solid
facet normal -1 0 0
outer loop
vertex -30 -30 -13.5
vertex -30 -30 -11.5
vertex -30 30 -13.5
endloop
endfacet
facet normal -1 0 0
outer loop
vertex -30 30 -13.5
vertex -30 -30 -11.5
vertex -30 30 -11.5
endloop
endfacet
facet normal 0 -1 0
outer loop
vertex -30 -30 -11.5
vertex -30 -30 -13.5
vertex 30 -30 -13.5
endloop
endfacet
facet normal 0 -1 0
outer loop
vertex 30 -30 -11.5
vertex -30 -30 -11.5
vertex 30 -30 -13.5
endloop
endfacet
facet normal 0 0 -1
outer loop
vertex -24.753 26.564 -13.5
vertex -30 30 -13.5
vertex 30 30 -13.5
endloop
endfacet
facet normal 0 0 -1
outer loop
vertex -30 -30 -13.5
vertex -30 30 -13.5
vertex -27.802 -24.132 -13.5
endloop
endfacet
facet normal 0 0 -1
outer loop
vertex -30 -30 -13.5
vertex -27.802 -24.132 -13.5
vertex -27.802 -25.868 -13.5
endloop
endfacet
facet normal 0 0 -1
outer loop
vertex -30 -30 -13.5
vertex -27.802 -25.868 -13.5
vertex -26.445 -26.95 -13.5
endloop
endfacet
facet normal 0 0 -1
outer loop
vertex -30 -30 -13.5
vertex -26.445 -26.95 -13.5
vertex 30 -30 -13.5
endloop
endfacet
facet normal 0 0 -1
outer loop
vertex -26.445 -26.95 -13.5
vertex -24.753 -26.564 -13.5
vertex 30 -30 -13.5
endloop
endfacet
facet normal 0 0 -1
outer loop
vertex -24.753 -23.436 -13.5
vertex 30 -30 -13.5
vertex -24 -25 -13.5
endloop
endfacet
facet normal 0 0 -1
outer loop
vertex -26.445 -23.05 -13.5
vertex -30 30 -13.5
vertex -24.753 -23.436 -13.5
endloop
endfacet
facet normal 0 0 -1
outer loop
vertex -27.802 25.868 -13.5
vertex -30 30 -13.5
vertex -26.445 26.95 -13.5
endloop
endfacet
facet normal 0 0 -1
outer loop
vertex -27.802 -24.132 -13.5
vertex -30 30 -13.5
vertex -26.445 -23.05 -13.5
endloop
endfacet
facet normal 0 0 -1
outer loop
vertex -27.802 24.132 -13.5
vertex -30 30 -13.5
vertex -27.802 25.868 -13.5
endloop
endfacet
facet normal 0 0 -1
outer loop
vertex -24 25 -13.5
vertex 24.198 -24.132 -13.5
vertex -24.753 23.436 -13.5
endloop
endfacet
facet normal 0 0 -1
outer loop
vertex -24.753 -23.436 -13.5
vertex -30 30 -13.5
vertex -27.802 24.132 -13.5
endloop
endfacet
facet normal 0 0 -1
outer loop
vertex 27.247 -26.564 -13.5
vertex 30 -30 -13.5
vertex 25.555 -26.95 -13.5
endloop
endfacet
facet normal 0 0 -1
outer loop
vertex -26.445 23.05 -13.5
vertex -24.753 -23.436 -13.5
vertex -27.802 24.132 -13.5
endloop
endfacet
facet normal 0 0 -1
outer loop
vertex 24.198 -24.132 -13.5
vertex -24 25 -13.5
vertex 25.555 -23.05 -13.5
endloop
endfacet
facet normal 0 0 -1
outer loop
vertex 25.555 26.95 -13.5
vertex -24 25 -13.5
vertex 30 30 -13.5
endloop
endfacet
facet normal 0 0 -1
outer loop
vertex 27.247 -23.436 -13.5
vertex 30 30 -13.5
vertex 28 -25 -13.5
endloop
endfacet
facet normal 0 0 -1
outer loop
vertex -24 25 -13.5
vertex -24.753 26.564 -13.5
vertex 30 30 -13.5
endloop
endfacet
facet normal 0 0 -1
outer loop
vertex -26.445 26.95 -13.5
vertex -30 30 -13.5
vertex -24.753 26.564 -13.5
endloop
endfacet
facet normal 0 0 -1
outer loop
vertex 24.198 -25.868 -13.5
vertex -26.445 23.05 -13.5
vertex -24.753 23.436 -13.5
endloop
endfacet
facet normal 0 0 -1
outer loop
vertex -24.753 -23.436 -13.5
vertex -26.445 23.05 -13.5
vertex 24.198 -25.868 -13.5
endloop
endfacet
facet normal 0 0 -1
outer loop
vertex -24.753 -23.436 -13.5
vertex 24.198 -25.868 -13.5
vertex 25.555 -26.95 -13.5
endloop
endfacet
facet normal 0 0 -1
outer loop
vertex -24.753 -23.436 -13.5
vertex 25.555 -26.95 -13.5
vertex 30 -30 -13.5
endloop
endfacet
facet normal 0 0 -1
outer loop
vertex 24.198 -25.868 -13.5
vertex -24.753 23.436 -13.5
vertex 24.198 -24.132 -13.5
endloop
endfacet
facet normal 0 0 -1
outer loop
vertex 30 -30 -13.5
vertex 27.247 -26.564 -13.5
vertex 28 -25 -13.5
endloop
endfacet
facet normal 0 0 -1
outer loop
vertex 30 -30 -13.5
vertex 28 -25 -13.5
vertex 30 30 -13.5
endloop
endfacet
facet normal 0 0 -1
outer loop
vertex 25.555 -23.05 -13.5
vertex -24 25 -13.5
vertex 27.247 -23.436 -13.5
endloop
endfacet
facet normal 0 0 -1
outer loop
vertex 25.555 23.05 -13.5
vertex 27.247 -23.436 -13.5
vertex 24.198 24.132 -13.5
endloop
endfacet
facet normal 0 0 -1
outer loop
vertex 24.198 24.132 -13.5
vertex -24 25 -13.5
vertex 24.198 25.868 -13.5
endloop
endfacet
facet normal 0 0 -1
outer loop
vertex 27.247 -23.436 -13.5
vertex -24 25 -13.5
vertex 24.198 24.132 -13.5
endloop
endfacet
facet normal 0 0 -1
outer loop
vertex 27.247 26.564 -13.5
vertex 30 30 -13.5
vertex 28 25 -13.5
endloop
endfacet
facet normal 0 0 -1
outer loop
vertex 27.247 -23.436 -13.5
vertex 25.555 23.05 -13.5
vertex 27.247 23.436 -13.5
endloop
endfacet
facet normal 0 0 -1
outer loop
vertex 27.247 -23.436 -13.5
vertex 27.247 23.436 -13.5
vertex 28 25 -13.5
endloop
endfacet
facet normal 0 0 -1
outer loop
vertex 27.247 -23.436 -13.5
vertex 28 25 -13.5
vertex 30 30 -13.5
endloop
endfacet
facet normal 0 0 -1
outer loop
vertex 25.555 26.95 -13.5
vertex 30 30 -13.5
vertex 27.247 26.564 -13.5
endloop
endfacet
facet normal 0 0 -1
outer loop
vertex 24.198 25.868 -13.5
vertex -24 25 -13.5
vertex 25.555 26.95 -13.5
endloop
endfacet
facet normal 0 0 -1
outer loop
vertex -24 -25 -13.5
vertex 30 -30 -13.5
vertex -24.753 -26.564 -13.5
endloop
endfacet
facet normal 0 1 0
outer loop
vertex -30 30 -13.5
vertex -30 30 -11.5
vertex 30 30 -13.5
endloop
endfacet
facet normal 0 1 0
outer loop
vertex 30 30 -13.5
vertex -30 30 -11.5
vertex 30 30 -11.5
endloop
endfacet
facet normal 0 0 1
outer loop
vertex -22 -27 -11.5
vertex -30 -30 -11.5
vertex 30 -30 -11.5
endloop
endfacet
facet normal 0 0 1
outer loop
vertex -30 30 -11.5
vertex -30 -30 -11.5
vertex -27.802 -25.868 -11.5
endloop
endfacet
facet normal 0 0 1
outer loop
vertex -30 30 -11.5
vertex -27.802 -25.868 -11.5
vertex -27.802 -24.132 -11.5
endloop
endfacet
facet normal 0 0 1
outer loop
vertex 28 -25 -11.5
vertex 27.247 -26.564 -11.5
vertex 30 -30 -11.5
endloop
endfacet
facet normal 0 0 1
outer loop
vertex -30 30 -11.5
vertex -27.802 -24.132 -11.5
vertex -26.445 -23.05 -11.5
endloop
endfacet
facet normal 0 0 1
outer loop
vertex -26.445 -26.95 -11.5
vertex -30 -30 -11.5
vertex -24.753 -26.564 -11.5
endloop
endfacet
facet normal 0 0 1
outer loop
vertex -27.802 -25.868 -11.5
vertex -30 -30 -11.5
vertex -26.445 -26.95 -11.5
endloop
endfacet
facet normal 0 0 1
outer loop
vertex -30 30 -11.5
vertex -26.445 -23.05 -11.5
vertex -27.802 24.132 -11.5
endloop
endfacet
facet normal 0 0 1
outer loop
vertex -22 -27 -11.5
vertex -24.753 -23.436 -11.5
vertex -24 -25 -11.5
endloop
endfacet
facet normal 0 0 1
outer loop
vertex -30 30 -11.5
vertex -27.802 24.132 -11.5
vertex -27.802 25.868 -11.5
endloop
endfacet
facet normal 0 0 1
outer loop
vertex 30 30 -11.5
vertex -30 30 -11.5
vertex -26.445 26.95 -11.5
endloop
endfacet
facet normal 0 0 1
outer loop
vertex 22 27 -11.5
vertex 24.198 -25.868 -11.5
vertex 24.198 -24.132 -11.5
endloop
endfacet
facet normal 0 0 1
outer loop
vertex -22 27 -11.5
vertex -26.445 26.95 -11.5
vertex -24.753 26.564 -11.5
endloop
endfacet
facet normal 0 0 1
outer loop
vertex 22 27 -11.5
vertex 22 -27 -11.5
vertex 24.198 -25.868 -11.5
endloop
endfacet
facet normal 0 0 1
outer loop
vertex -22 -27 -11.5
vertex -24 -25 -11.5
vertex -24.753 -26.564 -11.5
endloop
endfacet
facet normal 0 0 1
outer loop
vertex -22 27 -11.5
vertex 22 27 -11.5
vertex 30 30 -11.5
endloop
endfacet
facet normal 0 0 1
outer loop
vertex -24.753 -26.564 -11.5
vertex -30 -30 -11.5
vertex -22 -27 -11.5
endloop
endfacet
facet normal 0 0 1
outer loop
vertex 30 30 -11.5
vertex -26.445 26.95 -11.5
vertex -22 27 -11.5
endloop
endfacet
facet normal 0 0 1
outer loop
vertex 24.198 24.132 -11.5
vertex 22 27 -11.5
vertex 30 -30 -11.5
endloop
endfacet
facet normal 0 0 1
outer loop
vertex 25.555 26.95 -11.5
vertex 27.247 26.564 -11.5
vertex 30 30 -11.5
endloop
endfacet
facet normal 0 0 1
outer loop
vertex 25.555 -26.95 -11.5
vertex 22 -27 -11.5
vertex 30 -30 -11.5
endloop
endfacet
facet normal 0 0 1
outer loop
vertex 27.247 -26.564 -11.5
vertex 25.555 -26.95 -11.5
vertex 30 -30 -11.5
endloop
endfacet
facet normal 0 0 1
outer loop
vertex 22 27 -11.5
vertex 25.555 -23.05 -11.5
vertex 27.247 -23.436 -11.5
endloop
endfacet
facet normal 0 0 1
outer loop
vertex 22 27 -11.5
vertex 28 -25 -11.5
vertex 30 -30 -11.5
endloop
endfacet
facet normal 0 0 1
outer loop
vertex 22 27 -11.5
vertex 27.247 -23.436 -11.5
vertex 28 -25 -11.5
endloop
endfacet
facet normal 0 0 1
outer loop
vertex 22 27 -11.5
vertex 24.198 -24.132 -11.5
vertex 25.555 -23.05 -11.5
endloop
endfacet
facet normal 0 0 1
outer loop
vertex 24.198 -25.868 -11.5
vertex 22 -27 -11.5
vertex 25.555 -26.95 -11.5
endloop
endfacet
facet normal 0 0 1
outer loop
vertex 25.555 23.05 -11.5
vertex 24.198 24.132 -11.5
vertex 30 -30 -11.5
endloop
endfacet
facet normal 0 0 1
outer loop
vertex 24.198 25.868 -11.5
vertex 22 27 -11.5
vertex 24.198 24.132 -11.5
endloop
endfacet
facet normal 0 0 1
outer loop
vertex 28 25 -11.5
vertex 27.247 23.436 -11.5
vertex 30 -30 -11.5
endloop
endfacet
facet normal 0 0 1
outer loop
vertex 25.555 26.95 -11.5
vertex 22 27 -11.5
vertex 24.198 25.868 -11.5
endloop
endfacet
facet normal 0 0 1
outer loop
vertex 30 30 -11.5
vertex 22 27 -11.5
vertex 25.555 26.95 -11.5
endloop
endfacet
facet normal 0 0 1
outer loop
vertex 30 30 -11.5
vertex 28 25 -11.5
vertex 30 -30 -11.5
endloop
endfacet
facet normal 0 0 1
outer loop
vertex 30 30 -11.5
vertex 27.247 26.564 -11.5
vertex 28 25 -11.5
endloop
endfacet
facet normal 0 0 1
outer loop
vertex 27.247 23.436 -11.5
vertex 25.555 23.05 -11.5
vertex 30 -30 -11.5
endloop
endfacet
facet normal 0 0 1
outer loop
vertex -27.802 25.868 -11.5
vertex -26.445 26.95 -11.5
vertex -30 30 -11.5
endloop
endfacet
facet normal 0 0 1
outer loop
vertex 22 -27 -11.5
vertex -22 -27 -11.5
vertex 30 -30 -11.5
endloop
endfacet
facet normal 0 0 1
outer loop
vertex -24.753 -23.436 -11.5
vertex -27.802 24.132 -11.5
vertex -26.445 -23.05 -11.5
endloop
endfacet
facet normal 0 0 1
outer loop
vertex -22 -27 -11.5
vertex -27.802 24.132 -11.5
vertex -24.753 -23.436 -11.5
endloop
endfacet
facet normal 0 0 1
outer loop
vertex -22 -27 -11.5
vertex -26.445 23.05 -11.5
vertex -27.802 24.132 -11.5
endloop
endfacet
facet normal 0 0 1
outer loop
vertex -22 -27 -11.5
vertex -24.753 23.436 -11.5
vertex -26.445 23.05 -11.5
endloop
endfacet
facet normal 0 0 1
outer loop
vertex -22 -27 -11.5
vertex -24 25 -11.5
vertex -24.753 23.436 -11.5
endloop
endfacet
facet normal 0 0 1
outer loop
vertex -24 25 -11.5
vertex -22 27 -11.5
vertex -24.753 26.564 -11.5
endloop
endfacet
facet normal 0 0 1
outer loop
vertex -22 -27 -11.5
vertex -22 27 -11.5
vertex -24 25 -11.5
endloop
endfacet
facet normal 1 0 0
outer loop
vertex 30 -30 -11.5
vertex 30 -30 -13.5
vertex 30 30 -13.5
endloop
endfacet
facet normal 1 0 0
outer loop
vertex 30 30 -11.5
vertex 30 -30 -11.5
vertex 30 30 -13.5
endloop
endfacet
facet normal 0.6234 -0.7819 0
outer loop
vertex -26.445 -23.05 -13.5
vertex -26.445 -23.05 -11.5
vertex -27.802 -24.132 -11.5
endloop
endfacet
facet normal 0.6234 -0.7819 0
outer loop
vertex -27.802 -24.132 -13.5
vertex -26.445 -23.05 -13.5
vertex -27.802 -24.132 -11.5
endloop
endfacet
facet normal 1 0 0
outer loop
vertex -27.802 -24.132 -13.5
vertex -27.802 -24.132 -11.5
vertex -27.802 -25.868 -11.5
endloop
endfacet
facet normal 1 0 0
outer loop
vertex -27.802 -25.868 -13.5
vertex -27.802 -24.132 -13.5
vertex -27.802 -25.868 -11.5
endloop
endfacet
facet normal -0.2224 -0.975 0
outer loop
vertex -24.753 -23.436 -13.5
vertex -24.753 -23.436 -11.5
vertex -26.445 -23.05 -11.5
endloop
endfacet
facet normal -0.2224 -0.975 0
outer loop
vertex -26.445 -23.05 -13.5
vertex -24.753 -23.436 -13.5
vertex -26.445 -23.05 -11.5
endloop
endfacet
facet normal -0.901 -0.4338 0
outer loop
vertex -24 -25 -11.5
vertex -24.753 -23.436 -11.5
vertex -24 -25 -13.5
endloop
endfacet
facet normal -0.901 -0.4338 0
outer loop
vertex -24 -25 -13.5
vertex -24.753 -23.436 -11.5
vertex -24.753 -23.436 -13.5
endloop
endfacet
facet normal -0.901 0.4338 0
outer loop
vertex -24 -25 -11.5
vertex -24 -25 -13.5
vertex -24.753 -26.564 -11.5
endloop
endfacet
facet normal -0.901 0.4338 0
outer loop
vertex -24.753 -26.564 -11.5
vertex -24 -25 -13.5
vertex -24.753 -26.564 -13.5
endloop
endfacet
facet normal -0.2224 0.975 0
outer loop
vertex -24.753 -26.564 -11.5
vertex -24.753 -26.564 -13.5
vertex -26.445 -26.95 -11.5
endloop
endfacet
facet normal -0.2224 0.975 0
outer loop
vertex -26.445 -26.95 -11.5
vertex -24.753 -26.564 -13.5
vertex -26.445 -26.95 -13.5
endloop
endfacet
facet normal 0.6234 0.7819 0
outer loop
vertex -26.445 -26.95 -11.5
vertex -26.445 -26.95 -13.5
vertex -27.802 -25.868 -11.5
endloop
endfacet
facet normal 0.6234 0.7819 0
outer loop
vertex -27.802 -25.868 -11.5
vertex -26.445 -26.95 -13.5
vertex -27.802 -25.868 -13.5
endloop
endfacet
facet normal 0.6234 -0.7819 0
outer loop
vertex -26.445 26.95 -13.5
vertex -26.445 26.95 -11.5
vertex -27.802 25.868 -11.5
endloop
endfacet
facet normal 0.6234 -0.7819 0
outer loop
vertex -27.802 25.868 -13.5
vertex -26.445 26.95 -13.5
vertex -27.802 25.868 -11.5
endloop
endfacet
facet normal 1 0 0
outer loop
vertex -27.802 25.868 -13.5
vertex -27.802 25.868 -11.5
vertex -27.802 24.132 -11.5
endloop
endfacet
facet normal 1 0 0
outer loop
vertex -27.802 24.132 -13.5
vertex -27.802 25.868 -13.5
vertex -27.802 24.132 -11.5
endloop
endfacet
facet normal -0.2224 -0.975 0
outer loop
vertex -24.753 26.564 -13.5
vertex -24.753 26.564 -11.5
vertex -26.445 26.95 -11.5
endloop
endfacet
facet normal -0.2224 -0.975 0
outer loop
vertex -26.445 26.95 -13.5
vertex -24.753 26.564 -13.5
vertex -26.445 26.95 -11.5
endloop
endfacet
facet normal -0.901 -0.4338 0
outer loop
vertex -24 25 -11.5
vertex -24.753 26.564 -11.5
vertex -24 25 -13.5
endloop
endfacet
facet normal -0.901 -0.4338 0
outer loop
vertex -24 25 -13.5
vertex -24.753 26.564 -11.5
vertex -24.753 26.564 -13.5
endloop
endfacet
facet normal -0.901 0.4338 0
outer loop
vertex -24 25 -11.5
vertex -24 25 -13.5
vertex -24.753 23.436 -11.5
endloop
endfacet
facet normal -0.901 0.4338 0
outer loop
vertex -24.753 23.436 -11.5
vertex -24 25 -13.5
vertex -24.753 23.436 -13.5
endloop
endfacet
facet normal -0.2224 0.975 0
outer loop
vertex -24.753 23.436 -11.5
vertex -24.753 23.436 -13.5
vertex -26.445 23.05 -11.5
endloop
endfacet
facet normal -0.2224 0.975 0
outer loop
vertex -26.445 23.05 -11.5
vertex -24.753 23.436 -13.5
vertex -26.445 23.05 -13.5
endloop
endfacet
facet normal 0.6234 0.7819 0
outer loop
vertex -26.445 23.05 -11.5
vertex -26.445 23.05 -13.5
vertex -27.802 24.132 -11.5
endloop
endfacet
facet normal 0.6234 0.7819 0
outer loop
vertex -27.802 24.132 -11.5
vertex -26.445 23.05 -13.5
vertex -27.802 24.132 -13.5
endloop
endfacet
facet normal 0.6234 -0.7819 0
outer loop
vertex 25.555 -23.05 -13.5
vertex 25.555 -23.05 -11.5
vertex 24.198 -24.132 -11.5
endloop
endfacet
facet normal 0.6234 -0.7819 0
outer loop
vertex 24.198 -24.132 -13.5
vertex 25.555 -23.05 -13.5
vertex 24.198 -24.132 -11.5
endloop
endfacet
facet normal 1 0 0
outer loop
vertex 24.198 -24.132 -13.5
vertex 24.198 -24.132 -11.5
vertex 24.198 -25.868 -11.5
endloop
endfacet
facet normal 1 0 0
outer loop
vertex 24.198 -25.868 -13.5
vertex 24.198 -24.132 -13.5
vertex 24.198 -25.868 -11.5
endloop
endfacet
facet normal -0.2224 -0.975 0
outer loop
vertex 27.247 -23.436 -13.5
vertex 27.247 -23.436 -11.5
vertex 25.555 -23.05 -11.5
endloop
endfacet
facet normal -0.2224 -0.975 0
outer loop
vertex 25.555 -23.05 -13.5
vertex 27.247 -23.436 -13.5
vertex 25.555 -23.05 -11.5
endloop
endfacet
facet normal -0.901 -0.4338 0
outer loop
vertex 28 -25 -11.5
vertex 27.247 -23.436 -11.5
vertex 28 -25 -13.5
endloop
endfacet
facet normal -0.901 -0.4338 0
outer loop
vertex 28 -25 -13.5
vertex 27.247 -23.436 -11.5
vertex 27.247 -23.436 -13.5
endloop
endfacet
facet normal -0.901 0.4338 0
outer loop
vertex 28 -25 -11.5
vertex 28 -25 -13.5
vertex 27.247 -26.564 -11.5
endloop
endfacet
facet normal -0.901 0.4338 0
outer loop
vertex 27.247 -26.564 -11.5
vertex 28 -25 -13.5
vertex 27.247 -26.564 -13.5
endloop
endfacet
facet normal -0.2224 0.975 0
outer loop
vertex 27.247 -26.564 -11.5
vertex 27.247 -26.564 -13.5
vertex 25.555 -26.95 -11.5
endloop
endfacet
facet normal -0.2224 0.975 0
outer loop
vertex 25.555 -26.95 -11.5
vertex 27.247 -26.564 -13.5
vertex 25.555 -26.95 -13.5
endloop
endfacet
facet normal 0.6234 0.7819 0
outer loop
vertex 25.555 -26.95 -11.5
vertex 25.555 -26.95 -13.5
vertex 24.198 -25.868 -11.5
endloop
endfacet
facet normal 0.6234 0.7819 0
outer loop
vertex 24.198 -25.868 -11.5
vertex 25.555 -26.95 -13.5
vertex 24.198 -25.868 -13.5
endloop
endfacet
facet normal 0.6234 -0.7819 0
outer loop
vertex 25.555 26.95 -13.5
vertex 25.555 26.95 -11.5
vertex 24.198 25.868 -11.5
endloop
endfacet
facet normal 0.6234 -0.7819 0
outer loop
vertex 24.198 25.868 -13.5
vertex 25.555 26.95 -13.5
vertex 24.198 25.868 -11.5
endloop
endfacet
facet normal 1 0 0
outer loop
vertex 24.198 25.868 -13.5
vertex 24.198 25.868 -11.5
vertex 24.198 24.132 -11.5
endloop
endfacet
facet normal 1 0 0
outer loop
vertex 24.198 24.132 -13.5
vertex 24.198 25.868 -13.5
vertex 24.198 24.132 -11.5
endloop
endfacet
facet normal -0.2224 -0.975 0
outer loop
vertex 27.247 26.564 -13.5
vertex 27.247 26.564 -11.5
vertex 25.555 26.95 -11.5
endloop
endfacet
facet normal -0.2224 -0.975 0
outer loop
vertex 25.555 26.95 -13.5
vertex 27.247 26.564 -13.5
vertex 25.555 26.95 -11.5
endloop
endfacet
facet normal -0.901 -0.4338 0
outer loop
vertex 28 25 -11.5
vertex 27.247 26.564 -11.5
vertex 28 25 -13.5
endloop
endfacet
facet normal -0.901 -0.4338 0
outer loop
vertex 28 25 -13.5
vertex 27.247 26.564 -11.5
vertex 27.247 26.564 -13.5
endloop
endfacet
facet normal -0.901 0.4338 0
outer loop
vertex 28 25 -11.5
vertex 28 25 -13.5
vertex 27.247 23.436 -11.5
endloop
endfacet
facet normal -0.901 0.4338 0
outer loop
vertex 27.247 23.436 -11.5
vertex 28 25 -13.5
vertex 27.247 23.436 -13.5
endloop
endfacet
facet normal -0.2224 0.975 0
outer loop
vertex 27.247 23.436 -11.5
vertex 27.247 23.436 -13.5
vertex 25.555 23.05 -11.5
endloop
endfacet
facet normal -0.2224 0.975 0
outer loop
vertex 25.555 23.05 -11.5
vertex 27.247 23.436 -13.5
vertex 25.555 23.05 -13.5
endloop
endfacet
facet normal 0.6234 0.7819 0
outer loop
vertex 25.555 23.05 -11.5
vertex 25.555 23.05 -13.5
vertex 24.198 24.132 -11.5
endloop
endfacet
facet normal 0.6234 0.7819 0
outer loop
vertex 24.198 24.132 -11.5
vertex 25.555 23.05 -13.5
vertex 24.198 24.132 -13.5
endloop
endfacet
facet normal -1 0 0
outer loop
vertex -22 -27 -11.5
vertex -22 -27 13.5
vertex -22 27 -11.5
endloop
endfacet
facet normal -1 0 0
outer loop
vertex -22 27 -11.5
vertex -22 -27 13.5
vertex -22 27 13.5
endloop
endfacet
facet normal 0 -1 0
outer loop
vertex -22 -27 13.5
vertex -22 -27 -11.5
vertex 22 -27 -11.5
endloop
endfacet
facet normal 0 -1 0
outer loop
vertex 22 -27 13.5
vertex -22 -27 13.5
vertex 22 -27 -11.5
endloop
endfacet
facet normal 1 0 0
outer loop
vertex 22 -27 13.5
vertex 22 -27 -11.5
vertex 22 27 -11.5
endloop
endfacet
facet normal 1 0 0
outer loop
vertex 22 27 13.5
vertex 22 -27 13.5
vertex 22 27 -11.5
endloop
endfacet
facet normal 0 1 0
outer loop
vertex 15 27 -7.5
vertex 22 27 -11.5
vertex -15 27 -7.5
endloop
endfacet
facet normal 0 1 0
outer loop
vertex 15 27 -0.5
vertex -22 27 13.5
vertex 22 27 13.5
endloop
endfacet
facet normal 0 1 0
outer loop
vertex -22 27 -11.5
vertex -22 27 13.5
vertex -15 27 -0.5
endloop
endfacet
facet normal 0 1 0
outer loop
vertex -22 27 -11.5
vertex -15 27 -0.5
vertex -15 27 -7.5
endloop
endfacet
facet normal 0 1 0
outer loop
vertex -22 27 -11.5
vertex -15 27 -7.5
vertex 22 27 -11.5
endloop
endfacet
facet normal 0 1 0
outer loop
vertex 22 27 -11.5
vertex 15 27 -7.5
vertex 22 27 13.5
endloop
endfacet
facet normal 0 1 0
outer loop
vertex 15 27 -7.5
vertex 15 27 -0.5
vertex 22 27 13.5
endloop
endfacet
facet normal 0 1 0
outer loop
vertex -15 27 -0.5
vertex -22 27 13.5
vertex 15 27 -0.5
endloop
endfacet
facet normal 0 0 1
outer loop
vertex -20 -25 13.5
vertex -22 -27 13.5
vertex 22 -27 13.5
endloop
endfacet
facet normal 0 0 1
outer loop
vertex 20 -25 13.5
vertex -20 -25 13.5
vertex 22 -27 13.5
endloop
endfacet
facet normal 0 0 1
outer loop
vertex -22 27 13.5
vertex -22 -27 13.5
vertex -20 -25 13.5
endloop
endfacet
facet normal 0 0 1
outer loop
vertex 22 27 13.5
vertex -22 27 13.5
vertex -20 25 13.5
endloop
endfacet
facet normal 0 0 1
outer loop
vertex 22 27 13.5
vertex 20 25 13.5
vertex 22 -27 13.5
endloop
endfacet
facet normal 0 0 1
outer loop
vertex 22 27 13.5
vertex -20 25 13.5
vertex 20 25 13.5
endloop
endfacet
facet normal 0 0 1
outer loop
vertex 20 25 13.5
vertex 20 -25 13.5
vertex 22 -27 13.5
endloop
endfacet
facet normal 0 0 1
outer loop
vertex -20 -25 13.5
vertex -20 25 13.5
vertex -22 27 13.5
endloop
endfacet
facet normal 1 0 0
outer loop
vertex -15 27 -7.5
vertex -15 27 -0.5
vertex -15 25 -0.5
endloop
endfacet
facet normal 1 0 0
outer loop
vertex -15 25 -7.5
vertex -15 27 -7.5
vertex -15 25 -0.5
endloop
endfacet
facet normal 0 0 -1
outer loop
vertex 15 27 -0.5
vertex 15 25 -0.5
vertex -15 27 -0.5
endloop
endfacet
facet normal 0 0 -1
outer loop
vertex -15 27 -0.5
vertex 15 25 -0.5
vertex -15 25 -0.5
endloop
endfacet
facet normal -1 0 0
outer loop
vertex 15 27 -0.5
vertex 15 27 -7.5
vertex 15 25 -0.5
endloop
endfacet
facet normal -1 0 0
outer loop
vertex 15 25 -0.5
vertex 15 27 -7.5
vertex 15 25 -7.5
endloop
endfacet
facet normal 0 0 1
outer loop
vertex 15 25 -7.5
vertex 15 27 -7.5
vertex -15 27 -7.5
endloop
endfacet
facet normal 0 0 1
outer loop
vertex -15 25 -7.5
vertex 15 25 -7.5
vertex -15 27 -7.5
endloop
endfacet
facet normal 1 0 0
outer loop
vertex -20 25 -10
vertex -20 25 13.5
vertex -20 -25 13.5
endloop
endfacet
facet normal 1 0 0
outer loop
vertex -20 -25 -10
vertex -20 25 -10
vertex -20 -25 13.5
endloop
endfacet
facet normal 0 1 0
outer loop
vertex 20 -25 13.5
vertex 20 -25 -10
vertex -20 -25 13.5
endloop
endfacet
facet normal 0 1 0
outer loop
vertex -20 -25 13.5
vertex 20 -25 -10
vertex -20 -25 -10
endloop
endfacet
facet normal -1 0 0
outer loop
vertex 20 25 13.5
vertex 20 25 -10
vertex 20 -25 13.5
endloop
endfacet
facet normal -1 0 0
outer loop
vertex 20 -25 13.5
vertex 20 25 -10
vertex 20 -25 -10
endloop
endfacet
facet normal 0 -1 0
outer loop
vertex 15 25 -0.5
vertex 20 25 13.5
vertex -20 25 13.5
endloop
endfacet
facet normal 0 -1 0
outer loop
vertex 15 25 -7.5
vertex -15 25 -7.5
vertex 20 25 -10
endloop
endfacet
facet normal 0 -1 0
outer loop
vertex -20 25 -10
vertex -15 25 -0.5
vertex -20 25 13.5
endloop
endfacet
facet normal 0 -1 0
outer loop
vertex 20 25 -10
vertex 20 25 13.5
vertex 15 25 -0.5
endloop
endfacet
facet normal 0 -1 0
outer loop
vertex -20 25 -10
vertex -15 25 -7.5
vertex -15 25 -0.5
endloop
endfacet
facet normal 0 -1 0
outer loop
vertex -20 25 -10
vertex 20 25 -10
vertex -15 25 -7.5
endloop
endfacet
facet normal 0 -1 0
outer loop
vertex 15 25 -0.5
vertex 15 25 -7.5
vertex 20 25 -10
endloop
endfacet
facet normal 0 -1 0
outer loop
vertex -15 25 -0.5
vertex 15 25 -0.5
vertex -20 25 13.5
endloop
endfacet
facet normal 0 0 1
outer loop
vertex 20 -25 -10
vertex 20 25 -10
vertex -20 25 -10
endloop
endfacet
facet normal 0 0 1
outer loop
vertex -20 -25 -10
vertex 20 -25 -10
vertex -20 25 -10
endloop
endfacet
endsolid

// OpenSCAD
difference(){
	translate([0,0,-12.5]) cube(size=[60,60,2],center=true);
	translate([-26,-25,-12]) cylinder(r=2, h=5, center=true);
	translate([26,-25,-12]) cylinder(r=2, h=5, center=true);
	translate([-26,25,-12]) cylinder(r=2, h=5, center=true);
	translate([26,25,-12]) cylinder(r=2, h=5, center=true);
}
difference(){
	cube(size=[44,54,27],center=true);
	translate([0,0,3]) cube(size=[40,50,26],center=true);
	translate([0,26,-4]) cube(size=[30,4,7],center=true);
}
